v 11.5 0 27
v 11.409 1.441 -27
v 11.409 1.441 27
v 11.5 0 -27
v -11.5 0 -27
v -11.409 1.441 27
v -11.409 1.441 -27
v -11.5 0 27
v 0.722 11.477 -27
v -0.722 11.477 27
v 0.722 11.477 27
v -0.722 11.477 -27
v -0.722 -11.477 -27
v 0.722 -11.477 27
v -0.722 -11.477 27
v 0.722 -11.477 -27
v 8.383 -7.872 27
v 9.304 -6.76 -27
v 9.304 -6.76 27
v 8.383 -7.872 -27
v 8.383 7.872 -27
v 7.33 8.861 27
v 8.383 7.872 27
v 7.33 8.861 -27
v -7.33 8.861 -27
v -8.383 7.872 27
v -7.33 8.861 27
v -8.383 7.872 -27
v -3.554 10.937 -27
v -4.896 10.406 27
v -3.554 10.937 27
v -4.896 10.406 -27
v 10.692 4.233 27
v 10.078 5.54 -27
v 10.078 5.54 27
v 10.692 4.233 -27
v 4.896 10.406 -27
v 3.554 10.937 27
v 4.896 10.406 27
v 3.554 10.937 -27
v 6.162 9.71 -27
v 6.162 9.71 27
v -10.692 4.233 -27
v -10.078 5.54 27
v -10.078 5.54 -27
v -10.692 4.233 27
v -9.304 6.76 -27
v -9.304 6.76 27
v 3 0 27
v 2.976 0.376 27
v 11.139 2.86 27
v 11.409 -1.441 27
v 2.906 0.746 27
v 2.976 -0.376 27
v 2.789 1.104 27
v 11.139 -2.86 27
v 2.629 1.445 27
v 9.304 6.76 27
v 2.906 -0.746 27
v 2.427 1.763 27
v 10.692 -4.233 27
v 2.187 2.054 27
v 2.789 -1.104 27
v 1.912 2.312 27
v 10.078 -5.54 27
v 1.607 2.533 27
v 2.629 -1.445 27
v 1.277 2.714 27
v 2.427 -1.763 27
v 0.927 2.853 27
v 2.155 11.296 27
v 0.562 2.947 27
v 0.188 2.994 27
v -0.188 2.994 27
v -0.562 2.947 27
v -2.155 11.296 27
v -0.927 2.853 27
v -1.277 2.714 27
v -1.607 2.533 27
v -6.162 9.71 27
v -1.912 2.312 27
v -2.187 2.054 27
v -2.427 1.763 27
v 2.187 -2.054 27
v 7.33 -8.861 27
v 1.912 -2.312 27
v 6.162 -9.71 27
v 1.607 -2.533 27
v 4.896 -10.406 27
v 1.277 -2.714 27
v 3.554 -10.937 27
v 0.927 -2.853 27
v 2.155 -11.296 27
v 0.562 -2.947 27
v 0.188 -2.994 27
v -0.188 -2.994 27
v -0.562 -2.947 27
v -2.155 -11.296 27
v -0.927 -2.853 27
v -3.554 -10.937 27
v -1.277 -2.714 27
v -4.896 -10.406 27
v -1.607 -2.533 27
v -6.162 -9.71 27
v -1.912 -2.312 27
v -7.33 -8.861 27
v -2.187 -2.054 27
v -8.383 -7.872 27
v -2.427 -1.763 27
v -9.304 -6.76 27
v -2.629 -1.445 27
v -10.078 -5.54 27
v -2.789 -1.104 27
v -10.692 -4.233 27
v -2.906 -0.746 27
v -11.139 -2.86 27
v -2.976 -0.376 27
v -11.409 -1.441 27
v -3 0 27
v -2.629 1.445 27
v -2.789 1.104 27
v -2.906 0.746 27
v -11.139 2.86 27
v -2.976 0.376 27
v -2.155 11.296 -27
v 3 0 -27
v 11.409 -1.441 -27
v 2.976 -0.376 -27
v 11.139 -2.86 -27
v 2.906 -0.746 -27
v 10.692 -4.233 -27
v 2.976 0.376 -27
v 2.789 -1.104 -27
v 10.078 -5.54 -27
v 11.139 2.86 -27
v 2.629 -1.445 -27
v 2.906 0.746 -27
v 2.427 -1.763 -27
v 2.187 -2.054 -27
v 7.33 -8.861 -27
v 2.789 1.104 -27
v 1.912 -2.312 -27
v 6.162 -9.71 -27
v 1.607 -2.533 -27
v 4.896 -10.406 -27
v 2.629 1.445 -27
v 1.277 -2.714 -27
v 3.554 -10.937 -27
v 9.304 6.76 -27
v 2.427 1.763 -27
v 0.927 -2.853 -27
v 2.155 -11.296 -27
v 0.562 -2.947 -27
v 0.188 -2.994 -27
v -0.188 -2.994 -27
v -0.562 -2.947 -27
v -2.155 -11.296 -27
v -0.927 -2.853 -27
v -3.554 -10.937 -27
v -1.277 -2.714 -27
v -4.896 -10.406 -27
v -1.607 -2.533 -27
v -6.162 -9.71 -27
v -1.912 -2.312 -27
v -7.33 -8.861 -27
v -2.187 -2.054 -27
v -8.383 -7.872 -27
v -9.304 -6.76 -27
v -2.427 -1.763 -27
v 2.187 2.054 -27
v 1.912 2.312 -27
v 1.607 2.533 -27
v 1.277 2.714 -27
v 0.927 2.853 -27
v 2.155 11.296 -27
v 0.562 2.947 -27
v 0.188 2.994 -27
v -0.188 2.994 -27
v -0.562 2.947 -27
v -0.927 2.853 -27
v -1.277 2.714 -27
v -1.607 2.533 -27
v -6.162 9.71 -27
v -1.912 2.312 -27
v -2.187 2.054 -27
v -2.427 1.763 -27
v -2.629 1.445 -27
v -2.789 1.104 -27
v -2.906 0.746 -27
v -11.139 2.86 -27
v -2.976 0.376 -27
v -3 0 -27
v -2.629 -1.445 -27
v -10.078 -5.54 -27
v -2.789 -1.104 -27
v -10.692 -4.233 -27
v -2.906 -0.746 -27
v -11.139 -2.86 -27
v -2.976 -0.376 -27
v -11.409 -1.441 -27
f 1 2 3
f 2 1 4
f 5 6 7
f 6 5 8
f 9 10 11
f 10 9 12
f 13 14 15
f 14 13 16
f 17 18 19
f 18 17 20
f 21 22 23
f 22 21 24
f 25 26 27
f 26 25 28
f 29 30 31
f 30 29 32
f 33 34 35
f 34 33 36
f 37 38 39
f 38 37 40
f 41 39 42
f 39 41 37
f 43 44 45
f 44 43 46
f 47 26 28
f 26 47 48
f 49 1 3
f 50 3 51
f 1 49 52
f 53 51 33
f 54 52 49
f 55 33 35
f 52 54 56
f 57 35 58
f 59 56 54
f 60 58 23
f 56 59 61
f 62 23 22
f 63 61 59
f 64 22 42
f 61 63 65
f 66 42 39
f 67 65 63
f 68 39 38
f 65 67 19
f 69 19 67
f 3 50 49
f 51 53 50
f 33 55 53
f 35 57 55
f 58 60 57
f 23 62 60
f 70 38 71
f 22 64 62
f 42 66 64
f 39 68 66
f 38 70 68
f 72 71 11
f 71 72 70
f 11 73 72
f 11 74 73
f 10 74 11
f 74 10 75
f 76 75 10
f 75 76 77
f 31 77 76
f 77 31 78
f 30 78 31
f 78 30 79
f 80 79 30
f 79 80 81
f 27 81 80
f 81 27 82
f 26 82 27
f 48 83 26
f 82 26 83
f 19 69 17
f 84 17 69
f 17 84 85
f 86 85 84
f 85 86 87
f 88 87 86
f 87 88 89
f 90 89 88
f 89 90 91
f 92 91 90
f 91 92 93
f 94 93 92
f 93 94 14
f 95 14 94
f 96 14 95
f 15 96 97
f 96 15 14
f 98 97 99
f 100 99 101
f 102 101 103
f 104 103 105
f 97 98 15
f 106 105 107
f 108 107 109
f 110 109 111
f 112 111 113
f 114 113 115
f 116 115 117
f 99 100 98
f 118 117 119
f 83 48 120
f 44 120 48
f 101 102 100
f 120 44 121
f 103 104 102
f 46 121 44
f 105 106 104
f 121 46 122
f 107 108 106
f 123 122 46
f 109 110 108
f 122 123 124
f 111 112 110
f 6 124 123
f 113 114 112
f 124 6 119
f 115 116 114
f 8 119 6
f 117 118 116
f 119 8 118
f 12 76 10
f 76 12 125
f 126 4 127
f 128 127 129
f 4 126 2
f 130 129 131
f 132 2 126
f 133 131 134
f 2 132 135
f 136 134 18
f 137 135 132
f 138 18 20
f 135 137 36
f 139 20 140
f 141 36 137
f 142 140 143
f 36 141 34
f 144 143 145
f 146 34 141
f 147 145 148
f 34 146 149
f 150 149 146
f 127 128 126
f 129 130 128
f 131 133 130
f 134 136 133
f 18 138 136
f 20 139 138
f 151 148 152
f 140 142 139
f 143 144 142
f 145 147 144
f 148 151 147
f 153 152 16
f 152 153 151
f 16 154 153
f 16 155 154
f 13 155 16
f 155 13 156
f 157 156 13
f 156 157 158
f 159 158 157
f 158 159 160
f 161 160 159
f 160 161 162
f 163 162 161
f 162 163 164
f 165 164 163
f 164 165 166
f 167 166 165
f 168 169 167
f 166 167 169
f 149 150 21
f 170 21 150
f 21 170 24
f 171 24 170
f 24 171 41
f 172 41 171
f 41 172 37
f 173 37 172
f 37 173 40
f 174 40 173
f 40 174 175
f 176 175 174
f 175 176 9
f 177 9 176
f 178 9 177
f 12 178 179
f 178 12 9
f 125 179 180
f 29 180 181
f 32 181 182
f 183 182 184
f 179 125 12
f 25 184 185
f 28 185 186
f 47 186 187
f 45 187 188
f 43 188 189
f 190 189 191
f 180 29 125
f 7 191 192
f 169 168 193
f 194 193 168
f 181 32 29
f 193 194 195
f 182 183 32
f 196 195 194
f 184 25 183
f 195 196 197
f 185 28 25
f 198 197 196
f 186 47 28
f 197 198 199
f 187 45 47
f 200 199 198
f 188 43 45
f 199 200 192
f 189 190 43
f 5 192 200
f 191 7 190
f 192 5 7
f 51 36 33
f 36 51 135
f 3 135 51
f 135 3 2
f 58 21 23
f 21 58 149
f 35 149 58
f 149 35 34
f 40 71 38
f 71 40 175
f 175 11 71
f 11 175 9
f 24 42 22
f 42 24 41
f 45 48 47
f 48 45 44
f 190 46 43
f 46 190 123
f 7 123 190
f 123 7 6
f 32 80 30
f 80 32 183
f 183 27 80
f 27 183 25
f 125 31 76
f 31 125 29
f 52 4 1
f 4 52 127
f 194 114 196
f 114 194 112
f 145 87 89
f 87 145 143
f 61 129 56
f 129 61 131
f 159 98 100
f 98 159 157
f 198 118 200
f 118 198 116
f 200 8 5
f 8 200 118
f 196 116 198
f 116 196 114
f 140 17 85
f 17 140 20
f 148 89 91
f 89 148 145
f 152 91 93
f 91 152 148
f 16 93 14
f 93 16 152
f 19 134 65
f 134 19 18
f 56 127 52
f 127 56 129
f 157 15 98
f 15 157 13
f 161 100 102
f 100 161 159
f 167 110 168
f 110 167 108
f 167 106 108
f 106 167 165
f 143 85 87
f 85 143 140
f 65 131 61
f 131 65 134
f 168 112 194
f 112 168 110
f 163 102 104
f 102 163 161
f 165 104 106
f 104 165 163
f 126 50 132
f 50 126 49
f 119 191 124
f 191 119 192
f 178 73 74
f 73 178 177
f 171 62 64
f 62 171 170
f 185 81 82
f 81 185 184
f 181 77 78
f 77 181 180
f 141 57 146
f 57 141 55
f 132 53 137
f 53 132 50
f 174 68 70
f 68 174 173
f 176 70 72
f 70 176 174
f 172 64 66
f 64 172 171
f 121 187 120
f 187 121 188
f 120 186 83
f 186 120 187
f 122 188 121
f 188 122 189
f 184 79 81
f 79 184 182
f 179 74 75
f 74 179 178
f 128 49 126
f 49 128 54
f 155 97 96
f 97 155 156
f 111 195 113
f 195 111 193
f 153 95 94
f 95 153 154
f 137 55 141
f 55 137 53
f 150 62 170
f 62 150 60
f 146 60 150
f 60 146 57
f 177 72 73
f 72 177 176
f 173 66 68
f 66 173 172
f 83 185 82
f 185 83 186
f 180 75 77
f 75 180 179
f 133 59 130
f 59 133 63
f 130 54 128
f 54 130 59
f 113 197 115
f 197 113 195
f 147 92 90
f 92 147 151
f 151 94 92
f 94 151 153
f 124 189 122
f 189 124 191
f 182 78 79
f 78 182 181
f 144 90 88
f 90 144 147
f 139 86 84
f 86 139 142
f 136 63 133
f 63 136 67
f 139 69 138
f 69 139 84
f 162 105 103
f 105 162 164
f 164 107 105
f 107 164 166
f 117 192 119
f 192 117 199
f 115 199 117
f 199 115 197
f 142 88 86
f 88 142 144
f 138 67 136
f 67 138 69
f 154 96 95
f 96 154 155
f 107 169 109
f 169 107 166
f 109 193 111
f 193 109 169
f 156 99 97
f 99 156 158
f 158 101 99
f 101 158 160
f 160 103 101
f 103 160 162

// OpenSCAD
$fn = 50;


difference() {
	union() {
		translate(v = [0, 0, -27.0000000000]) {
			cylinder(h = 54, r = 11.5000000000);
		}
	}
	union() {
		translate(v = [0, 0, -100.0000000000]) {
			cylinder(h = 200, r = 3);
		}
	}
}
